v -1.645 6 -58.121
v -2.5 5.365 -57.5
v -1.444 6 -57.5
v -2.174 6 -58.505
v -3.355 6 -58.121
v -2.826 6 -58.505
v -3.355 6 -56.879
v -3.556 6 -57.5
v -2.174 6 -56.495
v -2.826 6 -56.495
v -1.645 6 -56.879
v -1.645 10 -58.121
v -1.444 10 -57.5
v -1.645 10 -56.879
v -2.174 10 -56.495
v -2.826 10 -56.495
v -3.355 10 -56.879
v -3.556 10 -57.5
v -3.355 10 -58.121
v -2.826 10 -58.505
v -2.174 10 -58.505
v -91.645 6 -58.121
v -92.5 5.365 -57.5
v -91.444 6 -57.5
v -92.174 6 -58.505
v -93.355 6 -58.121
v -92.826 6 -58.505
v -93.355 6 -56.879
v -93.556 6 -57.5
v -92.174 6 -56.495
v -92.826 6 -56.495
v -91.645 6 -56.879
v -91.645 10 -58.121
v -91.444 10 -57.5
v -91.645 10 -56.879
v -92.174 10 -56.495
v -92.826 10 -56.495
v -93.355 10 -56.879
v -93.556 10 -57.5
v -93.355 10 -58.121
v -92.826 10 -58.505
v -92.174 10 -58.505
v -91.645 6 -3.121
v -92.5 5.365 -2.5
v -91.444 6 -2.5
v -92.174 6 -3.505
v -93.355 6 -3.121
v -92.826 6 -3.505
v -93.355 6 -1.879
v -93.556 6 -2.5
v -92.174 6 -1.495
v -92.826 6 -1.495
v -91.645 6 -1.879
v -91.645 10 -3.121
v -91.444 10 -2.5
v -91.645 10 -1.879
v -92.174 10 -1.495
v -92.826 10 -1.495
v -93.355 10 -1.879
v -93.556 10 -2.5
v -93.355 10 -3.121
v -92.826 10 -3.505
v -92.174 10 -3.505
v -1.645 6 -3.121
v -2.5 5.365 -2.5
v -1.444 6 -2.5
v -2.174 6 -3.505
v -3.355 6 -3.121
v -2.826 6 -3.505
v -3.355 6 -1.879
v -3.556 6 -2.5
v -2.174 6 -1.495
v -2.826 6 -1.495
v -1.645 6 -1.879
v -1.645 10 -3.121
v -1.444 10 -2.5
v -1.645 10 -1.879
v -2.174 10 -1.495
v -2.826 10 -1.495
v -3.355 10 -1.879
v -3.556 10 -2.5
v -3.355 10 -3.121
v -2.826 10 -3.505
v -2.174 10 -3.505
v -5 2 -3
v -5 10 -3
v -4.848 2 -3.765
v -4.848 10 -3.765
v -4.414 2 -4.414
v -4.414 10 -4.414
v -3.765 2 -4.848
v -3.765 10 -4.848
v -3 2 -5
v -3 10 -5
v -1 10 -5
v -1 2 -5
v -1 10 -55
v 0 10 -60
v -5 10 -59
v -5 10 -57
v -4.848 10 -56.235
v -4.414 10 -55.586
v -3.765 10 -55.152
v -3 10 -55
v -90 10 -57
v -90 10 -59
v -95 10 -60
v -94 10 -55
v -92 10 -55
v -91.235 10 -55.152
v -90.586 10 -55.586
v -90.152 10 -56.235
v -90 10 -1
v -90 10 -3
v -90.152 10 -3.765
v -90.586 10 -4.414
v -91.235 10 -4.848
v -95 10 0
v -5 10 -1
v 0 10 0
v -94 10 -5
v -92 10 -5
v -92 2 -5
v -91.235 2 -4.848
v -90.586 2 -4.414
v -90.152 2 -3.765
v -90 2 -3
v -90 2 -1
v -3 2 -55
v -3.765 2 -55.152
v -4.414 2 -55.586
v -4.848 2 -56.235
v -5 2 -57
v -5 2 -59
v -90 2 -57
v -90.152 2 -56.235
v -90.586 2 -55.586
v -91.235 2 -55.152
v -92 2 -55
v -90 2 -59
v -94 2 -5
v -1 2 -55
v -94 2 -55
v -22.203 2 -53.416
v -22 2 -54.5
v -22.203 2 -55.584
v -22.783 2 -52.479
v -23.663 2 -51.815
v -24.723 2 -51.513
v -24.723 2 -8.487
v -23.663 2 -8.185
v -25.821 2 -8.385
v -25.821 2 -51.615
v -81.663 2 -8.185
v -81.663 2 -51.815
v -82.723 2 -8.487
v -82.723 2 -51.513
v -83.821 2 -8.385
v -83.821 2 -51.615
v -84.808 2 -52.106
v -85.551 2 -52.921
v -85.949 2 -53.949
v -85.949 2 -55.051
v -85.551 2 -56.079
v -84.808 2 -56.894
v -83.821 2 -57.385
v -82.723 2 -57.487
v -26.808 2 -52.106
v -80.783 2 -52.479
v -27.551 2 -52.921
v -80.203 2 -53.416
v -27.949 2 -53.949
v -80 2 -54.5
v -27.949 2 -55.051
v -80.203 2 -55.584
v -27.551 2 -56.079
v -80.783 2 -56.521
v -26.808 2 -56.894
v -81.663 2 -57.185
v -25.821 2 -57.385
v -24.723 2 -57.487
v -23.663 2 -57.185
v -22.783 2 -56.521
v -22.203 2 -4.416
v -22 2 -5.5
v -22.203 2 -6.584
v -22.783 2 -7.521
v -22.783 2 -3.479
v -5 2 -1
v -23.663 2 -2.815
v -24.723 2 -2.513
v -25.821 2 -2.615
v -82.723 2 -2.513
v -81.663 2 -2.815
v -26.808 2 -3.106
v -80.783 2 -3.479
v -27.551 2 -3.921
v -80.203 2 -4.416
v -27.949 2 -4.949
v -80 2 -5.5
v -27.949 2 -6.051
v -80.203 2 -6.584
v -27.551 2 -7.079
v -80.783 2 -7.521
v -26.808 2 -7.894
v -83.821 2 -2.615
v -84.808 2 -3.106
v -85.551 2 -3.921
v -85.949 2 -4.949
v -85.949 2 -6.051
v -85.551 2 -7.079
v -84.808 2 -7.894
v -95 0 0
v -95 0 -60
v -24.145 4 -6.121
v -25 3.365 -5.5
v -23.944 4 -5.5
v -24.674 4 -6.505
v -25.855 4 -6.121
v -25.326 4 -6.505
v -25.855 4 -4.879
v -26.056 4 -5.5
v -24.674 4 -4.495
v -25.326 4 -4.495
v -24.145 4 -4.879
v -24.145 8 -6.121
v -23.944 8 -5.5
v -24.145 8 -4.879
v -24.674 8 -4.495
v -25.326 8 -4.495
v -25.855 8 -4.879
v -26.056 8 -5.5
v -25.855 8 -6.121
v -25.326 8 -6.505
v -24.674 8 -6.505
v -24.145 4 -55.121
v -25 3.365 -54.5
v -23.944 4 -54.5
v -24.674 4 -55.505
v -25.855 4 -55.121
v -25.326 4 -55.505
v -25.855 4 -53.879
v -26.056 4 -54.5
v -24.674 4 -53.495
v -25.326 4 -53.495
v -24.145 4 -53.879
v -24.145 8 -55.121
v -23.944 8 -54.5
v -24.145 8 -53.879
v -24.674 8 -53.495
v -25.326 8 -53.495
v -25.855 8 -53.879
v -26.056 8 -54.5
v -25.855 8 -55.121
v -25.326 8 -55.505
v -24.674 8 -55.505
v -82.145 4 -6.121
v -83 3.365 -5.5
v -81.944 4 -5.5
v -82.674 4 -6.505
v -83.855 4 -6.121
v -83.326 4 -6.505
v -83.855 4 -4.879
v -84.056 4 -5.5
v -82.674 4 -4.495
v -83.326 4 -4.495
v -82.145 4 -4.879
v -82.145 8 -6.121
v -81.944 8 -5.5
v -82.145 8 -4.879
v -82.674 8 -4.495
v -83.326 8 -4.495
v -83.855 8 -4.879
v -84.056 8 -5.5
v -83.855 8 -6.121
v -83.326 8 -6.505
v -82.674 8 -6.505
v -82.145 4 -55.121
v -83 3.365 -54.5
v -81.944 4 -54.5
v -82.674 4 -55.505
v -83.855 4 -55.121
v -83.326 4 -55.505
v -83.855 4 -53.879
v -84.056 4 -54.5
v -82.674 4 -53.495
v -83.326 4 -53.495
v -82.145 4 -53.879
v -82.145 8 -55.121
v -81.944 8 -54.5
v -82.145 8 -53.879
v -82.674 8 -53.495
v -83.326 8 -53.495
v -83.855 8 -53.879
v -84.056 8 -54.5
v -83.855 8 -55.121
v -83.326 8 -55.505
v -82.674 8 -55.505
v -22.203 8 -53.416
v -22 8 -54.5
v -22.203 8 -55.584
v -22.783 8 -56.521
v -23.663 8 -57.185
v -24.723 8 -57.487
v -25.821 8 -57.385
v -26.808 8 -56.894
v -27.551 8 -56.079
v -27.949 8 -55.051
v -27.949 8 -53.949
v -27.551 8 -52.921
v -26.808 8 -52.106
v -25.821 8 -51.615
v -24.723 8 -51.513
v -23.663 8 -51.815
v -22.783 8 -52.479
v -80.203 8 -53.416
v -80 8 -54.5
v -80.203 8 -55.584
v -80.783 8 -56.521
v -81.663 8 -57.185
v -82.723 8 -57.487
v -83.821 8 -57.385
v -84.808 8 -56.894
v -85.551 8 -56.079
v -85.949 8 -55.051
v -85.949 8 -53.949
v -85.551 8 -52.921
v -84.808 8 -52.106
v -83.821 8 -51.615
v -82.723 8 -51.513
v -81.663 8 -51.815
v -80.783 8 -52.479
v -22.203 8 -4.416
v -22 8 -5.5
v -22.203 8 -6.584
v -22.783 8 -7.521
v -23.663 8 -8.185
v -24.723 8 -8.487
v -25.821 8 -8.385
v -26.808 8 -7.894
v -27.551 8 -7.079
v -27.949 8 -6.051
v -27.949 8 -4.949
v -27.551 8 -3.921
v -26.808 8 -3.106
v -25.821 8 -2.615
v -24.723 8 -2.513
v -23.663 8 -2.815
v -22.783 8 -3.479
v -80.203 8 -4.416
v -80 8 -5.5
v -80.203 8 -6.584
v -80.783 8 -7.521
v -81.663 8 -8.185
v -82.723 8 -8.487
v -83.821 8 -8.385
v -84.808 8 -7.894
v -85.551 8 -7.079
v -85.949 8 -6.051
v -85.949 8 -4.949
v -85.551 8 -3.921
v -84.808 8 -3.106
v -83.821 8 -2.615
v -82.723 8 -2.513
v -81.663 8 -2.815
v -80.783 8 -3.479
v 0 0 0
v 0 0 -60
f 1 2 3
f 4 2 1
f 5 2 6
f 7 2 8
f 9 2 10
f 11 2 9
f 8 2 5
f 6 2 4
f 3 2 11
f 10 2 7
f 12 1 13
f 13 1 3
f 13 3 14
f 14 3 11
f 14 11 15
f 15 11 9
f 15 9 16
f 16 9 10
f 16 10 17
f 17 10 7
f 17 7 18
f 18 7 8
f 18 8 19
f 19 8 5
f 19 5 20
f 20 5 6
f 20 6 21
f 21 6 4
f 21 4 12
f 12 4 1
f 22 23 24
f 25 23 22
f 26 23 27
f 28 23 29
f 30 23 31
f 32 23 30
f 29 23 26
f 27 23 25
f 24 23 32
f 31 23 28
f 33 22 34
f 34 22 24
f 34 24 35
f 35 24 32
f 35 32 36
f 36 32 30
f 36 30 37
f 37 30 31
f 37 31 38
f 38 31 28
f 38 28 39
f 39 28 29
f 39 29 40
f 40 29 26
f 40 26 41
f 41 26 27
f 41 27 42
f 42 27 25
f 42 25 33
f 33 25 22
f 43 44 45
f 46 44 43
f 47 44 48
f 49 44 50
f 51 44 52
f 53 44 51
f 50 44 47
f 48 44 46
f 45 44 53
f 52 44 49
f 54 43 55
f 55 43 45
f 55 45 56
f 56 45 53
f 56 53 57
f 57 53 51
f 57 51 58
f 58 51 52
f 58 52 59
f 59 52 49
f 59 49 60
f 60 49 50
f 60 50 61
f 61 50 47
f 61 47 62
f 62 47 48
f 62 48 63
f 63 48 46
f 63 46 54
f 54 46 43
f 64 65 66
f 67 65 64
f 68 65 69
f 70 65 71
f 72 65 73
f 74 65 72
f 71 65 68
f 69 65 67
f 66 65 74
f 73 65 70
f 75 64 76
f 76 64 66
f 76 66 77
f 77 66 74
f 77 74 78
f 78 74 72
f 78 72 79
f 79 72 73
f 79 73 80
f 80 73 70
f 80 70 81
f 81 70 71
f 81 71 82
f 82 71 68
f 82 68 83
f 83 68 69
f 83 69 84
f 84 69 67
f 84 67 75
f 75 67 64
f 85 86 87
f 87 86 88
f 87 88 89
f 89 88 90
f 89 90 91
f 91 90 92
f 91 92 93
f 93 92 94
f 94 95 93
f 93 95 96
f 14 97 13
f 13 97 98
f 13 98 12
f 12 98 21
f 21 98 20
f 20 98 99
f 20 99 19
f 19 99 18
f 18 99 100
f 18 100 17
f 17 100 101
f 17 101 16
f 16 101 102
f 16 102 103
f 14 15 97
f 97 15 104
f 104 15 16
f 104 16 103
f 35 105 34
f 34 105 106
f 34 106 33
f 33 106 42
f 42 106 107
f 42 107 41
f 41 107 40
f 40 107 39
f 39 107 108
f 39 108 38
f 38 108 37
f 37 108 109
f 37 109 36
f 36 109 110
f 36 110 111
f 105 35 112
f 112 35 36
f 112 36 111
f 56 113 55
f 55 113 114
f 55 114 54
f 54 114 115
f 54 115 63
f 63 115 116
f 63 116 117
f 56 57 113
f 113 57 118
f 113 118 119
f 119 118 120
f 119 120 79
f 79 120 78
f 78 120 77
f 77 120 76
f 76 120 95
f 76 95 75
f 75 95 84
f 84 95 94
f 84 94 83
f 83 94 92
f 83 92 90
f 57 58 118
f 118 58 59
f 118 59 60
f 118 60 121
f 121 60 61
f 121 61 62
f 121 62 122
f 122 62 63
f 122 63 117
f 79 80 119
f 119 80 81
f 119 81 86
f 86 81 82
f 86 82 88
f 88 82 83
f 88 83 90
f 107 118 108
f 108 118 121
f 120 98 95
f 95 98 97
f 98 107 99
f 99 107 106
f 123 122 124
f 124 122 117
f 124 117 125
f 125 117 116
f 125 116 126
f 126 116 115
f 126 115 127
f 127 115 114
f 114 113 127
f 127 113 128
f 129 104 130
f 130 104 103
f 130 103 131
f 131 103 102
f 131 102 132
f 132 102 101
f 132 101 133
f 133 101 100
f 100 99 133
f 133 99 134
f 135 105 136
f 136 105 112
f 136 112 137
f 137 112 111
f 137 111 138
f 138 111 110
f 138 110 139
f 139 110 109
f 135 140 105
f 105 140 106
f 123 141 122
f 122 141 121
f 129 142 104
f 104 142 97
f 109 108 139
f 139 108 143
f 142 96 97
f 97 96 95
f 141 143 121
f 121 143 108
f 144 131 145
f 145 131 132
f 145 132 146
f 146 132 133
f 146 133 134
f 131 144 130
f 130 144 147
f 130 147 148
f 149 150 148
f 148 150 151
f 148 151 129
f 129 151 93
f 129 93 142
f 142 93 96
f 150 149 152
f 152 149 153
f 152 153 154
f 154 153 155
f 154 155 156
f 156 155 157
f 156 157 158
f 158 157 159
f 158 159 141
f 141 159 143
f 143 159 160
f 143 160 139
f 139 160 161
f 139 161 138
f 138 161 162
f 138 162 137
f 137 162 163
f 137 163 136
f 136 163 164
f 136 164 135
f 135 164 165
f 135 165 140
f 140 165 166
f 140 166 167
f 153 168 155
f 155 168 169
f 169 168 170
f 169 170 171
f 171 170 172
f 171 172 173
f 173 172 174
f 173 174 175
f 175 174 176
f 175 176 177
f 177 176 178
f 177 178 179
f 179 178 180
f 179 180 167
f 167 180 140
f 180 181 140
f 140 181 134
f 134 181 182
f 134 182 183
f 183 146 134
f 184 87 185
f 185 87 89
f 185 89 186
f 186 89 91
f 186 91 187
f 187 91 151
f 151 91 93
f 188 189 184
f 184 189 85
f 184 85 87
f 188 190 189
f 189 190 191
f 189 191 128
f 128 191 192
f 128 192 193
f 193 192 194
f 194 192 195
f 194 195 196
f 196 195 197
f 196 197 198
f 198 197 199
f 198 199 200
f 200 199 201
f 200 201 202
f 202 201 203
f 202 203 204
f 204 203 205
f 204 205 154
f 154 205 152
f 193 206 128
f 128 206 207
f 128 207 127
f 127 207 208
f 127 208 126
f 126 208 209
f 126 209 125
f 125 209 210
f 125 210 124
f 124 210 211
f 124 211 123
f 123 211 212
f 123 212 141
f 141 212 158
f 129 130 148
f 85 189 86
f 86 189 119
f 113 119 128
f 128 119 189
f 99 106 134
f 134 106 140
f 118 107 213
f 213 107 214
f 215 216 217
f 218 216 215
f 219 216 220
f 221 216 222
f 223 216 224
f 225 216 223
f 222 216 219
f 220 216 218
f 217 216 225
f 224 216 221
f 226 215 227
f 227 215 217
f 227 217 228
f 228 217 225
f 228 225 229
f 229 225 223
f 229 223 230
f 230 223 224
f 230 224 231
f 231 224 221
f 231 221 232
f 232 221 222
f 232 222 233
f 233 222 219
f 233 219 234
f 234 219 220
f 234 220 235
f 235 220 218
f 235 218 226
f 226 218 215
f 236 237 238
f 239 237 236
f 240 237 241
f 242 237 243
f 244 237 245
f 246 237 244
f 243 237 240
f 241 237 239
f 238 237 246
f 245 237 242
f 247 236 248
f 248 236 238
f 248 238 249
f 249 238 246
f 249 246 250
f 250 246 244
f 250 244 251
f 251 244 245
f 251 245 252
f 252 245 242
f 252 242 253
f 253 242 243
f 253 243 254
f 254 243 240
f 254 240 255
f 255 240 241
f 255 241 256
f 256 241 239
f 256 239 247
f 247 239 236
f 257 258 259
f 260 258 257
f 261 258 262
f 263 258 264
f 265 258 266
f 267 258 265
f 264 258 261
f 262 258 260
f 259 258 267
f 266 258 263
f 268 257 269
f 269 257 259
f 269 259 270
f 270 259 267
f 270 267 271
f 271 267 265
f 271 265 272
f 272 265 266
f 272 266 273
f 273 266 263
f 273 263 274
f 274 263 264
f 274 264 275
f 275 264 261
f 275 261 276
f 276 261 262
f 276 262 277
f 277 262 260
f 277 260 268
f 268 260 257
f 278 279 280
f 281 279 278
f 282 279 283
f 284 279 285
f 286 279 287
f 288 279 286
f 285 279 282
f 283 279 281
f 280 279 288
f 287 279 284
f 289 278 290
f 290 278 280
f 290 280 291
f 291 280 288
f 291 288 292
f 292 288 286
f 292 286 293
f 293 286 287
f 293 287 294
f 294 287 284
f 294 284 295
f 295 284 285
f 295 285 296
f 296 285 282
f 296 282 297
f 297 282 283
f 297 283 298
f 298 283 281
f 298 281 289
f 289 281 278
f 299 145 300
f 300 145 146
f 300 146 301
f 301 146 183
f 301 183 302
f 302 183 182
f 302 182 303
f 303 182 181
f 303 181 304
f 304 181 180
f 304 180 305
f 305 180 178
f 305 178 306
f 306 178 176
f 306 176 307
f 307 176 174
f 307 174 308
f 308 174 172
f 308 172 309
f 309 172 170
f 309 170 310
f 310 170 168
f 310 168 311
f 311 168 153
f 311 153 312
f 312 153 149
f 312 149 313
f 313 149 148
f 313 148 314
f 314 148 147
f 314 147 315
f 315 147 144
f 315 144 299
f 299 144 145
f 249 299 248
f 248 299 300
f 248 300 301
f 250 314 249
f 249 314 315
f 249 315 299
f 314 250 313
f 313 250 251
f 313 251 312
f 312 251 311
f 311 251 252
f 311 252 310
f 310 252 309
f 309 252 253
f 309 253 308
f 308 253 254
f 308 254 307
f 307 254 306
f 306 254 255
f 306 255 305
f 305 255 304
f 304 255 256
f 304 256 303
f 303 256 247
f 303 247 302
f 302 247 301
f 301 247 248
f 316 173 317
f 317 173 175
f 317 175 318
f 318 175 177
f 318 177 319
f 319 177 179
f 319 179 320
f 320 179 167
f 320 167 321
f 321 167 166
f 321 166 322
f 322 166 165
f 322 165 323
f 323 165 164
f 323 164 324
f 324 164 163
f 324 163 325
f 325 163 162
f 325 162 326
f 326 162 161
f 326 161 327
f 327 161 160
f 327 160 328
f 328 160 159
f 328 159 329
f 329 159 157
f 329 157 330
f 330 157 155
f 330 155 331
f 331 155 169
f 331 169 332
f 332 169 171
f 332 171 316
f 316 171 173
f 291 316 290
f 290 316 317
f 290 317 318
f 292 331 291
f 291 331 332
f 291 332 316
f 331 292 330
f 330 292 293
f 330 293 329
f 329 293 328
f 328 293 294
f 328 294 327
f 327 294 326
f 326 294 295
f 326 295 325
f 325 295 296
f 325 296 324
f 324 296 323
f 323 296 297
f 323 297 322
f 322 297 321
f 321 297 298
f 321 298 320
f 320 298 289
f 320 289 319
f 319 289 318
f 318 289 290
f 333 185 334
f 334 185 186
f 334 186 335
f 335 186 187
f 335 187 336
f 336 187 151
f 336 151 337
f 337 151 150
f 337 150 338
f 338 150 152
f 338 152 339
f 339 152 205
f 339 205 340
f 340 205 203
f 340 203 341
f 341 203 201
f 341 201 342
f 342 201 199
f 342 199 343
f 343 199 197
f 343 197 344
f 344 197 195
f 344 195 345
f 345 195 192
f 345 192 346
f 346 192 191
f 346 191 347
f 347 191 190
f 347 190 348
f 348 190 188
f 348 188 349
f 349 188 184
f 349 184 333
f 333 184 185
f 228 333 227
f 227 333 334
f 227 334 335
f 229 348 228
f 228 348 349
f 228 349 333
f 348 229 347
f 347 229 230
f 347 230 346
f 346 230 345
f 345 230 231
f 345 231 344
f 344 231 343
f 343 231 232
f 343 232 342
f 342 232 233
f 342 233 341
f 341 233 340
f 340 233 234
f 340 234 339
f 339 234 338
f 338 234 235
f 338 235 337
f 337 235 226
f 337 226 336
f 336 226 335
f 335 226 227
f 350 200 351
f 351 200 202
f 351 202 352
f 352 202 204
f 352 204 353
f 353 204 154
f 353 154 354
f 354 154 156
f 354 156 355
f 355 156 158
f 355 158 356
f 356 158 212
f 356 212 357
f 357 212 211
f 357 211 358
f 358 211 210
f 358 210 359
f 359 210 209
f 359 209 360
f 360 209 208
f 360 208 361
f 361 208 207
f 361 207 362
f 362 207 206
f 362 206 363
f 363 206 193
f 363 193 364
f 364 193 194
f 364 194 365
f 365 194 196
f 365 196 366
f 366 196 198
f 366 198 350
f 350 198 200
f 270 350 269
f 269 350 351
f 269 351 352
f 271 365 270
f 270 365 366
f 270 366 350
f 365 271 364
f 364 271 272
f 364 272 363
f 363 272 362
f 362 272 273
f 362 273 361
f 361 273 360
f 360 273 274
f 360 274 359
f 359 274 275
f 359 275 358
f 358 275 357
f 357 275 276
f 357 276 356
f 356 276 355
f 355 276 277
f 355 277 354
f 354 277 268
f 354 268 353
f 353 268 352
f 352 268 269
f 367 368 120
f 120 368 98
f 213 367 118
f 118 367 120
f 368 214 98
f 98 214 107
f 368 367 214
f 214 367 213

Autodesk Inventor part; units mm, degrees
ref_plane "YZ Plane" through (0, 0, 0) normal (1, 0, 0) x (0, 1, 0)
ref_plane "XZ Plane" through (0, 0, 0) normal (0, 1, 0) x (-1, 0, 0)
ref_plane "XY Plane" through (0, 0, 0) normal (0, 0, 1) x (1, 0, 0)
sketch "Szkic1" plane through (0, 0, 0) normal (0, 1, 0) x (-1, 0, 0)
  line L0 (0, 0) -> (90, 0)
  line L1 (90, 0) -> (90, -60)
  line L2 (90, -60) -> (0, -60)
  line L3 (0, -60) -> (0, 0)
  dimension "d0" = 90
  dimension "d1" = 60
extrude "Wyciągnięcie proste1" add sketch "Szkic1" along normal blind 2
sketch "Szkic10" plane through (0, 2, 0) normal (0, 1, 0) x (1, 0, 0)
  circle A0 centre (-83, 54.5) radius 3
  circle A1 centre (-25, 54.5) radius 3
  circle A2 centre (-25, 5.5) radius 3
  circle A3 centre (-83, 5.5) radius 3
  point P0 (0, 0)
  dimension "d21" = 6
  dimension "d22" = 6
  dimension "d23" = 6
  dimension "d24" = 6
extrude "Wyciągnięcie proste4" add sketch "Szkic10" along normal blind 6
sketch "Szkic11" plane through (-83, 8, -54.5) normal (0, 1, 0) x (1, 0, 0)
  circle A0 centre (0, 0) radius 3 projected
  point P0 (83, -54.5)
hole "Otwór1" at (-83, 8, -54.5) direction (0, -1, 0) diameter 2.1129 depth 4 tip angle 118 counterbore diameter 2.7 counterbore depth 0 thread size "M2.6x0.45" class "6H" standard "ISO Metric profile"
sketch "Szkic12" plane through (-83, 8, -5.5) normal (0, 1, 0) x (1, 0, 0)
  circle A0 centre (0, 0) radius 3 projected
  point P0 (83, -5.5)
hole "Otwór2" at (-83, 8, -5.5) direction (0, -1, 0) diameter 2.1129 depth 4 tip angle 118 counterbore diameter 2.7 counterbore depth 0 thread size "M2.6x0.45" class "6H" standard "ISO Metric profile"
sketch "Szkic13" plane through (-25, 8, -54.5) normal (0, 1, 0) x (1, 0, 0)
  point P0 (25, -54.5)
  point P1 (0, 0)
  point P2 (0, 0)
hole "Otwór3" at (-25, 8, -54.5) direction (0, -1, 0) diameter 2.1129 depth 4 tip angle 118 counterbore diameter 2.7 counterbore depth 0 thread size "M2.6x0.45" class "6H" standard "ISO Metric profile"
sketch "Szkic14" plane through (-25, 8, -5.5) normal (0, 1, 0) x (1, 0, 0)
  point P0 (25, -5.5)
  point P1 (0, 0)
  point P2 (0, 0)
hole "Otwór4" at (-25, 8, -5.5) direction (0, -1, 0) diameter 2.1129 depth 4 tip angle 118 counterbore diameter 2.7 counterbore depth 0 thread size "M2.6x0.45" class "6H" standard "ISO Metric profile"
sketch "Szkic15" plane through (-90, 0, -60) normal (-1, 0, 0) x (0, 0, 1)
  line L0 (0, 0) -> (60, 0)
  line L1 (60, 0) -> (60, 2)
  line L2 (60, 2) -> (0, 2)
  line L3 (0, 2) -> (0, 0)
extrude "Wyciągnięcie proste5" add sketch "Szkic15" along normal blind 5
sketch "Szkic16" plane through (0, 2, 0) normal (0, 1, 0) x (1, 0, 0)
  line L0 (0, 60) -> (-95, 60) projected
  line L1 (-95, 60) -> (-95, 0) projected
  line L2 (-94, 60) -> (-95, 60)
  line L3 (-95, 60) -> (-95, 0)
  line L4 (-95, 0) -> (-94, 0)
  line L5 (-94, 0) -> (-94, 60)
  line L6 (-95, 1) -> (0, 1)
  line L7 (0, 1) -> (0, 0)
  line L8 (0, 0) -> (-95, 0)
  line L9 (-95, 0) -> (-95, 1)
  line L10 (-1, 0) -> (0, 0)
  line L11 (0, 0) -> (0, 60)
  line L12 (0, 60) -> (-1, 60)
  line L13 (-1, 60) -> (-1, 0)
  line L14 (-1, 59) -> (-95, 59)
  line L15 (-95, 59) -> (-95, 60)
  line L16 (-95, 60) -> (-1, 60)
  line L17 (-1, 60) -> (-1, 59)
  point P0 (-94, 59)
  point P1 (-1, 1)
  point P2 (-94, 1)
extrude "Wyciągnięcie proste6" add sketch "Szkic16" along normal blind 8 contours L11 L6 L13 L0 | L13 L14 L5 L0 | L7 L8 L13 L6 | L5 L14 L1 L0 | L13 L8 L5 L6 | L5 L6 L1 L14 | L5 L4 L1 L6
sketch "Szkic21" plane through (0, 2, 0) normal (0, 1, 0) x (1, 0, 0)
  line L0 (-1, 59) -> (-1, 1) projected
  line L1 (-94, 1) -> (-1, 1) projected
  line L2 (-1, 5) -> (-5, 5)
  line L3 (-5, 5) -> (-5, 1)
  line L4 (-5, 1) -> (-1, 1)
  line L5 (-1, 1) -> (-1, 5)
  point P0 (0, 0)
  dimension "d61" = 4
extrude "Wyciągnięcie proste8" add sketch "Szkic21" along normal blind 8
sketch "Szkic22" plane through (0, 2, 0) normal (0, 1, 0) x (1, 0, 0)
  line L0 (-1, 59) -> (-1, 5) projected
  line L1 (-1, 55) -> (-5, 55)
  line L2 (-5, 55) -> (-5, 59)
  line L3 (-5, 59) -> (-1, 59)
  line L4 (-1, 59) -> (-1, 55)
  line L5 (-94, 1) -> (-94, 59) projected
  line L6 (-1, 59) -> (-94, 59) projected
  line L7 (-94, 55) -> (-90, 55)
  line L8 (-90, 55) -> (-90, 59)
  line L9 (-90, 59) -> (-94, 59)
  line L10 (-94, 59) -> (-94, 55)
  line L11 (-94, 1) -> (-5, 1) projected
  line L12 (-94, 5) -> (-90, 5)
  line L13 (-90, 5) -> (-90, 1)
  line L14 (-90, 1) -> (-94, 1)
  line L15 (-94, 1) -> (-94, 5)
  point P0 (0, 0)
  dimension "d64" = 4
  dimension "d65" = 4
extrude "Wyciągnięcie proste9" add sketch "Szkic22" along normal blind 8
fillet "Zaokrąglenie1" radius 2 4 edges at (-90, 6, -55) (-5, 6, -55) (-90, 6, -5) (-5, 6, -5)
sketch "Szkic23" plane through (0, 10, 0) normal (0, 1, 0) x (1, 0, 0)
  point P0 (0, 0)
  point P1 (-2.5, 2.5)
  point P2 (-92.5, 2.5)
  point P3 (-92.5, 57.5)
  point P4 (-2.5, 57.5)
hole "Otwór5" at (-2.5, 10, -2.5) at (-92.5, 10, -2.5) at (-92.5, 10, -57.5) at (-2.5, 10, -57.5) direction (0, -1, 0) diameter 2.1129 depth 4 tip angle 118 counterbore diameter 2.7 counterbore depth 0 thread size "M2.6x0.45" class "6H" standard "ISO Metric profile"
equation "\"d25\" = d22"
properties part number "dol"
